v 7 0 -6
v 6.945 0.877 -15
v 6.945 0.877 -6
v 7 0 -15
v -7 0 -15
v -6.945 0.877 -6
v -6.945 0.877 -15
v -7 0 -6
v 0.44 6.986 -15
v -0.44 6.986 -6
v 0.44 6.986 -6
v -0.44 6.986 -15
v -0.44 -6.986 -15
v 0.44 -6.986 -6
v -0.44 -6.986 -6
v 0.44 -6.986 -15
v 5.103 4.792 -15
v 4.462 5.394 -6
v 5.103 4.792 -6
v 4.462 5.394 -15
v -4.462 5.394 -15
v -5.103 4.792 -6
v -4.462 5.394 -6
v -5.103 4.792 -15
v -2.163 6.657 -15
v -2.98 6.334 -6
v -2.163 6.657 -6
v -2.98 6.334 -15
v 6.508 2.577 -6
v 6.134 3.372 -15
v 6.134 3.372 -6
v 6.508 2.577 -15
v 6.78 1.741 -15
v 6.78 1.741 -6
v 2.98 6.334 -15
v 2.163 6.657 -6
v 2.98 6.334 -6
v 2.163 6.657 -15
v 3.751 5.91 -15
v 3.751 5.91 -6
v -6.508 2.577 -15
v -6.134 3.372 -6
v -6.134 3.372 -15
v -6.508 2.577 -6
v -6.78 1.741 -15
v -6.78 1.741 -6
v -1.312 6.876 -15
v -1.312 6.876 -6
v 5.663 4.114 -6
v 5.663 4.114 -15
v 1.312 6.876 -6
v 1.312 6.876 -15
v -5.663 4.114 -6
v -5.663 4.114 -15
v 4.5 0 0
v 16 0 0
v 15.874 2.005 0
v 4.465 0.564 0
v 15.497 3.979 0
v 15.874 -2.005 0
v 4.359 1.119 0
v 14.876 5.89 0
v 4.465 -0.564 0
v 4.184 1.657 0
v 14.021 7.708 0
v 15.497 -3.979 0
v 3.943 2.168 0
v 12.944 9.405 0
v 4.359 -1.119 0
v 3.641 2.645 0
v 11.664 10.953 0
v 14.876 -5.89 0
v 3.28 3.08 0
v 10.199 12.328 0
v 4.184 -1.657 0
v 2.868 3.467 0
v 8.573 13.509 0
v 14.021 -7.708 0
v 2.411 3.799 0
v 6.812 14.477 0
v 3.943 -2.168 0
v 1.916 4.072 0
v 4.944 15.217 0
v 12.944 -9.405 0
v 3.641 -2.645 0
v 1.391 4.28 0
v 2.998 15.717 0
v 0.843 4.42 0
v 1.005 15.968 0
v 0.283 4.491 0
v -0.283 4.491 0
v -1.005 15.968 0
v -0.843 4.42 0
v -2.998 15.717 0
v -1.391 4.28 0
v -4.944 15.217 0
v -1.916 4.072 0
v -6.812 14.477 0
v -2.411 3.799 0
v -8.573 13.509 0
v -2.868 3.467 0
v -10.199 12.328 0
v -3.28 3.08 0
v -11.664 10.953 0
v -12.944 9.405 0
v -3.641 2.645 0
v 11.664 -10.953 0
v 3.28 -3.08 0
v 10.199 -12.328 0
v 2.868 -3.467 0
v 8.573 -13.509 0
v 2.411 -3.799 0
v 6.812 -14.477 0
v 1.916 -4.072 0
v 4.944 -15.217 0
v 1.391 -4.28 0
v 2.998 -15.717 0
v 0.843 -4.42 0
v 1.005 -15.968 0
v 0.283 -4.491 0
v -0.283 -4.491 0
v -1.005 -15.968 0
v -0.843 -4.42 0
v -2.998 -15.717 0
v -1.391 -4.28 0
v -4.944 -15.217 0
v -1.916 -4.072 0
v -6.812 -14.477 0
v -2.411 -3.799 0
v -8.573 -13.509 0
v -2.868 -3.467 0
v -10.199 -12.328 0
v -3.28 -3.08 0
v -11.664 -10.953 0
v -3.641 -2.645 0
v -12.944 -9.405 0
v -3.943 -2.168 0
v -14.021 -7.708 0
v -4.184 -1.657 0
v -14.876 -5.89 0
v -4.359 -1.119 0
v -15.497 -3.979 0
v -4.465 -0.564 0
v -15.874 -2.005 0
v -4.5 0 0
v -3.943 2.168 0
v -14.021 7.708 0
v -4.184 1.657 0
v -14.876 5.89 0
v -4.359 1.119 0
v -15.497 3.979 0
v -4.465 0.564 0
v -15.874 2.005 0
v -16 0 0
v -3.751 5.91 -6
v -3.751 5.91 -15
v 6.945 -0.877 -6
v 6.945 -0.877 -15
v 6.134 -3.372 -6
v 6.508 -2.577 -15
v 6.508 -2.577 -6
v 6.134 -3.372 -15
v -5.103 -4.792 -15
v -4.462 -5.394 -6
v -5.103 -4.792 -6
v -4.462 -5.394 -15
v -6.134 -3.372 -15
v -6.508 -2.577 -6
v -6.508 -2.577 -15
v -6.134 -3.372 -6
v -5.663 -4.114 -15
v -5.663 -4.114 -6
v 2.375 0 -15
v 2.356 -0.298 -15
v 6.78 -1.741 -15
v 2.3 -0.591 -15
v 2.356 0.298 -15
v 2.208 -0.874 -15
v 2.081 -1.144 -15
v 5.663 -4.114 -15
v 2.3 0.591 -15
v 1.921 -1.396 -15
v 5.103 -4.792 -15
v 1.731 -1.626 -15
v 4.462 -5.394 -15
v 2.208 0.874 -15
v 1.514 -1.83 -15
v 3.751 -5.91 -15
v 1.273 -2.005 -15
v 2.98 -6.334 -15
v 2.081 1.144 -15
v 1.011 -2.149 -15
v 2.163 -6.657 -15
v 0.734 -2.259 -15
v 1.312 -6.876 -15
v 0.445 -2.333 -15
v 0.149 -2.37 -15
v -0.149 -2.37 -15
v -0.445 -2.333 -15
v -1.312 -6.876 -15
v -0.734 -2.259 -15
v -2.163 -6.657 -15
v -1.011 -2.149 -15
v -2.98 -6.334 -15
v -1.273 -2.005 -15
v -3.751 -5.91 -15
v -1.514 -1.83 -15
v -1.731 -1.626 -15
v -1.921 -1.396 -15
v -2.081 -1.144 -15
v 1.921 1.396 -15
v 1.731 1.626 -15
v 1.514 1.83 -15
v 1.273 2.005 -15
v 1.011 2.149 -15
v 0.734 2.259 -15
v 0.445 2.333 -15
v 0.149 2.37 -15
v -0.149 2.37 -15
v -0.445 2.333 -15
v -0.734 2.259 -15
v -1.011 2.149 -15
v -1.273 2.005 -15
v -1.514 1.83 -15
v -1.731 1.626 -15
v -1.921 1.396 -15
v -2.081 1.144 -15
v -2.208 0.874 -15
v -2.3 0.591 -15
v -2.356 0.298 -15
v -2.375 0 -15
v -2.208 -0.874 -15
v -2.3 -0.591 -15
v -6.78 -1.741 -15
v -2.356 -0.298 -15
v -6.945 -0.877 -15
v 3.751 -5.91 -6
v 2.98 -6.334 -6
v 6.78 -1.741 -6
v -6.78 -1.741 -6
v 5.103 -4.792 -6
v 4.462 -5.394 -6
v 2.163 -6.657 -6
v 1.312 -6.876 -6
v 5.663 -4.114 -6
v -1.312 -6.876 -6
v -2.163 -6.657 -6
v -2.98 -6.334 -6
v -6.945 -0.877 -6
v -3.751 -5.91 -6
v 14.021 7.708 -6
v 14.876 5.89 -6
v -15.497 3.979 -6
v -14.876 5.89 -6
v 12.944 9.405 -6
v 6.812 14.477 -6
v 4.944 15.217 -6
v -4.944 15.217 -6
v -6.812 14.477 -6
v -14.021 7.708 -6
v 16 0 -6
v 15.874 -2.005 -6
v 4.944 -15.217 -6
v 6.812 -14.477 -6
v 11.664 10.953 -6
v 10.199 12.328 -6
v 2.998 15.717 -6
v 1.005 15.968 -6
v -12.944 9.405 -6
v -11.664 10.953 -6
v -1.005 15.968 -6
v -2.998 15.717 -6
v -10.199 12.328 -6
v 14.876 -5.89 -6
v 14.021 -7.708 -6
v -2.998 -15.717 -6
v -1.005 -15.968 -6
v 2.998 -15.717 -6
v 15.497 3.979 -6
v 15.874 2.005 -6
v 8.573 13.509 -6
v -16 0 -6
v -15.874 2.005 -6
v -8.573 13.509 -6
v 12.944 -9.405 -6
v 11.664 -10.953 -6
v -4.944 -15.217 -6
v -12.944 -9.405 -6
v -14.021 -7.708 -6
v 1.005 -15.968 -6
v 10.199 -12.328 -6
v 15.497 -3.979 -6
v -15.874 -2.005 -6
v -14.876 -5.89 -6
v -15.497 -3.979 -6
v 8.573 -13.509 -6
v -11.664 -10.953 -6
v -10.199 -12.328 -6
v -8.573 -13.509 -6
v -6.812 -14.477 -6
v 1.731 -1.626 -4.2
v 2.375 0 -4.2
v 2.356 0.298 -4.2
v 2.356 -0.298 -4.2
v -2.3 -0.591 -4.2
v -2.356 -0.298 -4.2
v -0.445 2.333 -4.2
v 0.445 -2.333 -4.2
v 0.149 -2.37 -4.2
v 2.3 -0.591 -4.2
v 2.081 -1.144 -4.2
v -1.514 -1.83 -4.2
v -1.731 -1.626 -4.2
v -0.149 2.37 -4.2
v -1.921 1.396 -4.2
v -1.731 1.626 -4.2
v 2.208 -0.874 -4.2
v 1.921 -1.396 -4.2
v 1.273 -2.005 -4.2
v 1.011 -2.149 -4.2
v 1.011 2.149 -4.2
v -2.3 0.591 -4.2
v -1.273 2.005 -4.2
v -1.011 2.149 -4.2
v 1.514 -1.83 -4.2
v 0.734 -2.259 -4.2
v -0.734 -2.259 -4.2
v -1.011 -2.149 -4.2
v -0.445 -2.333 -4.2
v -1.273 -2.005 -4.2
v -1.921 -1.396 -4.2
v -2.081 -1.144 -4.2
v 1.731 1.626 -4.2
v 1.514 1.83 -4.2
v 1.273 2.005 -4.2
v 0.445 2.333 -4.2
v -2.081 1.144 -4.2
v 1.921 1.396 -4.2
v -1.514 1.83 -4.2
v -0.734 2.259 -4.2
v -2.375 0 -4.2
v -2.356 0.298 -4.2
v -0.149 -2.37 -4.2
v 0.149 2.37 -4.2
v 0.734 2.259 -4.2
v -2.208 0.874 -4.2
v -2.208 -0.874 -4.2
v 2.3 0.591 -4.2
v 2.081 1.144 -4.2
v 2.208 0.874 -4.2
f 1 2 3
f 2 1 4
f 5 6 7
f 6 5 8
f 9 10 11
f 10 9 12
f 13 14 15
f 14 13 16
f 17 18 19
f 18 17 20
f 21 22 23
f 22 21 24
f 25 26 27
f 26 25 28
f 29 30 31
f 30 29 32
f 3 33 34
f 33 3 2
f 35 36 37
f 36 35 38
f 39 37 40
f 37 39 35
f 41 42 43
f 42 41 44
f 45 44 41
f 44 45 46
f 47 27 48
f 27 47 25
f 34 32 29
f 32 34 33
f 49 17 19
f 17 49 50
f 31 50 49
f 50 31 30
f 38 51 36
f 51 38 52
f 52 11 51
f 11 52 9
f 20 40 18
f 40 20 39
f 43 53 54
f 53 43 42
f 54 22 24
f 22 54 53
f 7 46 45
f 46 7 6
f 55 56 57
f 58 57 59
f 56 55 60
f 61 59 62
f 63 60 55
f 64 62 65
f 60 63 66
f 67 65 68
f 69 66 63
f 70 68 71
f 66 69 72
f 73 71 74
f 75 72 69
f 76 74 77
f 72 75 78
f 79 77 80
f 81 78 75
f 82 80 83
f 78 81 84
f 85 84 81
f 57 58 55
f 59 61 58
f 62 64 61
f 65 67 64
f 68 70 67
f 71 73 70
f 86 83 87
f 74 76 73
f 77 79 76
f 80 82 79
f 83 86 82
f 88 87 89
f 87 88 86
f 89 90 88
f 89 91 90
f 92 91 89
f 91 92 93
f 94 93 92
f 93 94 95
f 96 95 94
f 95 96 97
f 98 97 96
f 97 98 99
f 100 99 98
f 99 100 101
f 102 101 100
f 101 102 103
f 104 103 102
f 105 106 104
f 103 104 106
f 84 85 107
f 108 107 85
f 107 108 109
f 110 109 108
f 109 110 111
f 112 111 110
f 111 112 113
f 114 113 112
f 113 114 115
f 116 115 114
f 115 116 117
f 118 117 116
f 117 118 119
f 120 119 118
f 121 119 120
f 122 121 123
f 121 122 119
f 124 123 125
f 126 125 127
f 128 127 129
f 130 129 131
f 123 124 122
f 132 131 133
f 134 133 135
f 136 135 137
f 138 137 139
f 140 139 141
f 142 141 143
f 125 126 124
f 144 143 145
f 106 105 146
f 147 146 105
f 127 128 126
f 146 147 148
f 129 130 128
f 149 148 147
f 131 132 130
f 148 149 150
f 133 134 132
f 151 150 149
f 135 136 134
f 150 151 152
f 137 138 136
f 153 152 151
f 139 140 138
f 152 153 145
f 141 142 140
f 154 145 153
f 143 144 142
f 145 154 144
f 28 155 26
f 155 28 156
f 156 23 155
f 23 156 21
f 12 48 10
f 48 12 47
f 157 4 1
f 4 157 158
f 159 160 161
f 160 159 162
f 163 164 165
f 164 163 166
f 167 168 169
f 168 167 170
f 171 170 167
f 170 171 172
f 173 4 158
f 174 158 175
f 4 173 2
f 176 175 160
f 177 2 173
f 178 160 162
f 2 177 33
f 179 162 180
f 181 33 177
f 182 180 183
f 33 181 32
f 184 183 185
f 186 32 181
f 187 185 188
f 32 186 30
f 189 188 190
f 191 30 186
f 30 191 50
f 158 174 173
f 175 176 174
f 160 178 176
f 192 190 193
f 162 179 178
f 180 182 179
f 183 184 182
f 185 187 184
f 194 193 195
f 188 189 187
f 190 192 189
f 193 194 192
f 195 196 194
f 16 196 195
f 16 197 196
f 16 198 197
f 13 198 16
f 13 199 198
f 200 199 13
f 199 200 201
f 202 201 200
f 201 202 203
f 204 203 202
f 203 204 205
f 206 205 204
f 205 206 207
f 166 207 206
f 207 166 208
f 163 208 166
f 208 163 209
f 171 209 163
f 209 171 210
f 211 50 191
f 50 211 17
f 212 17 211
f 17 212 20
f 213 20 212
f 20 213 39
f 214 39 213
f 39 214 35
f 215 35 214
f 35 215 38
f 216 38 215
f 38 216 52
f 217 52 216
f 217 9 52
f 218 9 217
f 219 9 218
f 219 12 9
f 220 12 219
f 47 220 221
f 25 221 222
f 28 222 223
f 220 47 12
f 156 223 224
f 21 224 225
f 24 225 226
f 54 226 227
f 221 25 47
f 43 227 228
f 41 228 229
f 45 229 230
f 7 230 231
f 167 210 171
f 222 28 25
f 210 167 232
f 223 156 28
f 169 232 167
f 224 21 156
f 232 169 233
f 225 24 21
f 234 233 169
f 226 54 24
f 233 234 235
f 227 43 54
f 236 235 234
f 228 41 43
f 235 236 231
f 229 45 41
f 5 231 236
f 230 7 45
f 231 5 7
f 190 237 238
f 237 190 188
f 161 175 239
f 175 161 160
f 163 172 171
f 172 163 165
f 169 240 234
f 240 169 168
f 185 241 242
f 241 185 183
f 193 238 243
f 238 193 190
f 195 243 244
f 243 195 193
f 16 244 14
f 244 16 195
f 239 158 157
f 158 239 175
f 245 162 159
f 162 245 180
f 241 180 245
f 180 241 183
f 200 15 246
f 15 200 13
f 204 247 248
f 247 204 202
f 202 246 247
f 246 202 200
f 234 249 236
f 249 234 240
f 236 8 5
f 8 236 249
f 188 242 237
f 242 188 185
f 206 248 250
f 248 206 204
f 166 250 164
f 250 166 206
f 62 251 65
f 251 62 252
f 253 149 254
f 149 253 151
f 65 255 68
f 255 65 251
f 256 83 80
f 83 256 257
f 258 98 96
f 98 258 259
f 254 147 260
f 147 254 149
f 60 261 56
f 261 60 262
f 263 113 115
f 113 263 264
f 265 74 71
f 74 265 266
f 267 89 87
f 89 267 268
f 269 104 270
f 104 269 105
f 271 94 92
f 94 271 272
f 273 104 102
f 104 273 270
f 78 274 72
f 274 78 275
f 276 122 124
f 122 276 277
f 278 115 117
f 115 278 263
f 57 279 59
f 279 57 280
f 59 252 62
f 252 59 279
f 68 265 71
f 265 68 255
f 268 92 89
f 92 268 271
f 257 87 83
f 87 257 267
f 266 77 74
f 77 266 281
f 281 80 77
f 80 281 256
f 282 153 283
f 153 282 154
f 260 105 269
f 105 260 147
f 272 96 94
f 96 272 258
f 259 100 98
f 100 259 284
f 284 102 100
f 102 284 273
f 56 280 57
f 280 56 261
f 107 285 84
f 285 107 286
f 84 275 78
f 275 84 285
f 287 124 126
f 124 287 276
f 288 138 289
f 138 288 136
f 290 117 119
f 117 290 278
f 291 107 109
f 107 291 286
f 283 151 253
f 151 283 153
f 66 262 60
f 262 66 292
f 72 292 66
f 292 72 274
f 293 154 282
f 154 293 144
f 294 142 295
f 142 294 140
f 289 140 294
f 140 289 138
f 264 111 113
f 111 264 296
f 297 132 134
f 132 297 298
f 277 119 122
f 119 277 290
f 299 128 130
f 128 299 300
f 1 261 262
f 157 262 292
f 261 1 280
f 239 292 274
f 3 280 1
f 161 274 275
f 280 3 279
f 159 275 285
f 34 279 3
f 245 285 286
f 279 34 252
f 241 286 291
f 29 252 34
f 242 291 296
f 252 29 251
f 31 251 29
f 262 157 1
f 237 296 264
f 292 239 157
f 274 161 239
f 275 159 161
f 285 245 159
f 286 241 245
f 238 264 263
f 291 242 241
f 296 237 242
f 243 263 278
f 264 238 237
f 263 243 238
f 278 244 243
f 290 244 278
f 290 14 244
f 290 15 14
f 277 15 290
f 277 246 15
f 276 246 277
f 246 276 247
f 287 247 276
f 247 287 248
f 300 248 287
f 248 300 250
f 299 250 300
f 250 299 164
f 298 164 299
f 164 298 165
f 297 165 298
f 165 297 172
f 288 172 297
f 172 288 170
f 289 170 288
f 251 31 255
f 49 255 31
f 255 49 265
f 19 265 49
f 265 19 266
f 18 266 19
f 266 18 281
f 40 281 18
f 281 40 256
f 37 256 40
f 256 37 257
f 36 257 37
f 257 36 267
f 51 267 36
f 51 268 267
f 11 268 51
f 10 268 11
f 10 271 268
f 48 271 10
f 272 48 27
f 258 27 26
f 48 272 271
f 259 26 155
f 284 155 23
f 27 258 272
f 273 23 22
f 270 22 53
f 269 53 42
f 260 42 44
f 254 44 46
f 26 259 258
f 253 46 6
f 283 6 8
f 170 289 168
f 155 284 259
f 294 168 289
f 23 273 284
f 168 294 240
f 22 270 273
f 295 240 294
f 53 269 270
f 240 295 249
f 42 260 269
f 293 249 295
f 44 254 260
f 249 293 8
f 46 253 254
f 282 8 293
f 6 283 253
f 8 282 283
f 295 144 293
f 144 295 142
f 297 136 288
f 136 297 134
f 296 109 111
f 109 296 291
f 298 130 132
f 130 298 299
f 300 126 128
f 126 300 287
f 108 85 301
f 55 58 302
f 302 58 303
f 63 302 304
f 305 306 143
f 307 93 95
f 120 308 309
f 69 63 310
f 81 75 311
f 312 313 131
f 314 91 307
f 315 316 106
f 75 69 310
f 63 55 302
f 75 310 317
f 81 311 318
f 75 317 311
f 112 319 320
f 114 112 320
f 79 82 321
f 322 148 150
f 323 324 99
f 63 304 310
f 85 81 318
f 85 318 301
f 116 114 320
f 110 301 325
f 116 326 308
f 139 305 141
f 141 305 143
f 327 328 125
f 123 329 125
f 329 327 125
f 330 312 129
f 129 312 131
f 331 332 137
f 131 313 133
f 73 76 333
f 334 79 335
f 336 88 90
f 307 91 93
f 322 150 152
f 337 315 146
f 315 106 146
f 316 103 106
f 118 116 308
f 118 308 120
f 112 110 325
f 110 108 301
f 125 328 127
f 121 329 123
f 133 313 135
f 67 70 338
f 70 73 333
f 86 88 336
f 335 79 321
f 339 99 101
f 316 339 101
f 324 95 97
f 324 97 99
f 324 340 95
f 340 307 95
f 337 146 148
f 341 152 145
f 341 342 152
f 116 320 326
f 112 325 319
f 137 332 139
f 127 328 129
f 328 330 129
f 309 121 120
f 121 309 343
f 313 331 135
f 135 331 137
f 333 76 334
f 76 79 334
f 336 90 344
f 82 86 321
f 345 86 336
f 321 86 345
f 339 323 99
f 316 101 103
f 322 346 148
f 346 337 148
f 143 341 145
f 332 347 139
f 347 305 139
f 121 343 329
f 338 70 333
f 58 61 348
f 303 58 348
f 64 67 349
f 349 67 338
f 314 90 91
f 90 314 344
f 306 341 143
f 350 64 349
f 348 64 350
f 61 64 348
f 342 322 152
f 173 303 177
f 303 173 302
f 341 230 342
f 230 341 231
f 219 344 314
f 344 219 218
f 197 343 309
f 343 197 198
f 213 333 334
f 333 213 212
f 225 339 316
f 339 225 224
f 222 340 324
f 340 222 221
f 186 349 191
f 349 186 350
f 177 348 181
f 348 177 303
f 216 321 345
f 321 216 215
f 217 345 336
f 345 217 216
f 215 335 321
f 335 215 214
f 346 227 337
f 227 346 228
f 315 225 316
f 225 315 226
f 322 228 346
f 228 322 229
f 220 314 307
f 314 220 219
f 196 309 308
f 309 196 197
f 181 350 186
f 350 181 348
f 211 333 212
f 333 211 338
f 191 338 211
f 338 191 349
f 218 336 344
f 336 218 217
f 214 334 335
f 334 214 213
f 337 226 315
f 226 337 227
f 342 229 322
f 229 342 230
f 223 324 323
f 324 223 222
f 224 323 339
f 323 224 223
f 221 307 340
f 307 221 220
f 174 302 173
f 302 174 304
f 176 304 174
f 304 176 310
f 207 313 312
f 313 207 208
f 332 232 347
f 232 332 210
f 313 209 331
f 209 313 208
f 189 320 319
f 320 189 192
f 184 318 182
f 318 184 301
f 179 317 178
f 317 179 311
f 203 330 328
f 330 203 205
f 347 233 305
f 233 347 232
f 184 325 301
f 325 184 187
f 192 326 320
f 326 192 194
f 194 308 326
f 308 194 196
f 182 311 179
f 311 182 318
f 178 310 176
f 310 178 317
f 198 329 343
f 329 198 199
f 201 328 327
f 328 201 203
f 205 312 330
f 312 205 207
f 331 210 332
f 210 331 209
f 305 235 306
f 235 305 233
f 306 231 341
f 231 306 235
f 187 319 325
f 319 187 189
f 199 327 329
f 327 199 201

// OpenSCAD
$fn = 50;


difference() {
	union() {
		translate(v = [0, 0, -15.0000000000]) {
			cylinder(h = 15, r = 7.0000000000);
		}
		translate(v = [0, 0, -6.0000000000]) {
			cylinder(h = 6, r = 16.0000000000);
		}
	}
	union() {
		translate(v = [0, 0, 0]) {
			rotate(a = [0, 0, 0]) {
				difference() {
					union() {
						#translate(v = [0, 0, -15.0000000000]) {
							cylinder(h = 15, r = 2.2500000000);
						}
						#translate(v = [0, 0, -4.2000000000]) {
							cylinder(h = 4.2000000000, r1 = 2.3750000000, r2 = 4.5000000000);
						}
						#translate(v = [0, 0, -15.0000000000]) {
							cylinder(h = 15, r = 2.3750000000);
						}
						#translate(v = [0, 0, -15.0000000000]) {
							cylinder(h = 15, r = 2.2500000000);
						}
					}
					union();
				}
			}
		}
	}
}
